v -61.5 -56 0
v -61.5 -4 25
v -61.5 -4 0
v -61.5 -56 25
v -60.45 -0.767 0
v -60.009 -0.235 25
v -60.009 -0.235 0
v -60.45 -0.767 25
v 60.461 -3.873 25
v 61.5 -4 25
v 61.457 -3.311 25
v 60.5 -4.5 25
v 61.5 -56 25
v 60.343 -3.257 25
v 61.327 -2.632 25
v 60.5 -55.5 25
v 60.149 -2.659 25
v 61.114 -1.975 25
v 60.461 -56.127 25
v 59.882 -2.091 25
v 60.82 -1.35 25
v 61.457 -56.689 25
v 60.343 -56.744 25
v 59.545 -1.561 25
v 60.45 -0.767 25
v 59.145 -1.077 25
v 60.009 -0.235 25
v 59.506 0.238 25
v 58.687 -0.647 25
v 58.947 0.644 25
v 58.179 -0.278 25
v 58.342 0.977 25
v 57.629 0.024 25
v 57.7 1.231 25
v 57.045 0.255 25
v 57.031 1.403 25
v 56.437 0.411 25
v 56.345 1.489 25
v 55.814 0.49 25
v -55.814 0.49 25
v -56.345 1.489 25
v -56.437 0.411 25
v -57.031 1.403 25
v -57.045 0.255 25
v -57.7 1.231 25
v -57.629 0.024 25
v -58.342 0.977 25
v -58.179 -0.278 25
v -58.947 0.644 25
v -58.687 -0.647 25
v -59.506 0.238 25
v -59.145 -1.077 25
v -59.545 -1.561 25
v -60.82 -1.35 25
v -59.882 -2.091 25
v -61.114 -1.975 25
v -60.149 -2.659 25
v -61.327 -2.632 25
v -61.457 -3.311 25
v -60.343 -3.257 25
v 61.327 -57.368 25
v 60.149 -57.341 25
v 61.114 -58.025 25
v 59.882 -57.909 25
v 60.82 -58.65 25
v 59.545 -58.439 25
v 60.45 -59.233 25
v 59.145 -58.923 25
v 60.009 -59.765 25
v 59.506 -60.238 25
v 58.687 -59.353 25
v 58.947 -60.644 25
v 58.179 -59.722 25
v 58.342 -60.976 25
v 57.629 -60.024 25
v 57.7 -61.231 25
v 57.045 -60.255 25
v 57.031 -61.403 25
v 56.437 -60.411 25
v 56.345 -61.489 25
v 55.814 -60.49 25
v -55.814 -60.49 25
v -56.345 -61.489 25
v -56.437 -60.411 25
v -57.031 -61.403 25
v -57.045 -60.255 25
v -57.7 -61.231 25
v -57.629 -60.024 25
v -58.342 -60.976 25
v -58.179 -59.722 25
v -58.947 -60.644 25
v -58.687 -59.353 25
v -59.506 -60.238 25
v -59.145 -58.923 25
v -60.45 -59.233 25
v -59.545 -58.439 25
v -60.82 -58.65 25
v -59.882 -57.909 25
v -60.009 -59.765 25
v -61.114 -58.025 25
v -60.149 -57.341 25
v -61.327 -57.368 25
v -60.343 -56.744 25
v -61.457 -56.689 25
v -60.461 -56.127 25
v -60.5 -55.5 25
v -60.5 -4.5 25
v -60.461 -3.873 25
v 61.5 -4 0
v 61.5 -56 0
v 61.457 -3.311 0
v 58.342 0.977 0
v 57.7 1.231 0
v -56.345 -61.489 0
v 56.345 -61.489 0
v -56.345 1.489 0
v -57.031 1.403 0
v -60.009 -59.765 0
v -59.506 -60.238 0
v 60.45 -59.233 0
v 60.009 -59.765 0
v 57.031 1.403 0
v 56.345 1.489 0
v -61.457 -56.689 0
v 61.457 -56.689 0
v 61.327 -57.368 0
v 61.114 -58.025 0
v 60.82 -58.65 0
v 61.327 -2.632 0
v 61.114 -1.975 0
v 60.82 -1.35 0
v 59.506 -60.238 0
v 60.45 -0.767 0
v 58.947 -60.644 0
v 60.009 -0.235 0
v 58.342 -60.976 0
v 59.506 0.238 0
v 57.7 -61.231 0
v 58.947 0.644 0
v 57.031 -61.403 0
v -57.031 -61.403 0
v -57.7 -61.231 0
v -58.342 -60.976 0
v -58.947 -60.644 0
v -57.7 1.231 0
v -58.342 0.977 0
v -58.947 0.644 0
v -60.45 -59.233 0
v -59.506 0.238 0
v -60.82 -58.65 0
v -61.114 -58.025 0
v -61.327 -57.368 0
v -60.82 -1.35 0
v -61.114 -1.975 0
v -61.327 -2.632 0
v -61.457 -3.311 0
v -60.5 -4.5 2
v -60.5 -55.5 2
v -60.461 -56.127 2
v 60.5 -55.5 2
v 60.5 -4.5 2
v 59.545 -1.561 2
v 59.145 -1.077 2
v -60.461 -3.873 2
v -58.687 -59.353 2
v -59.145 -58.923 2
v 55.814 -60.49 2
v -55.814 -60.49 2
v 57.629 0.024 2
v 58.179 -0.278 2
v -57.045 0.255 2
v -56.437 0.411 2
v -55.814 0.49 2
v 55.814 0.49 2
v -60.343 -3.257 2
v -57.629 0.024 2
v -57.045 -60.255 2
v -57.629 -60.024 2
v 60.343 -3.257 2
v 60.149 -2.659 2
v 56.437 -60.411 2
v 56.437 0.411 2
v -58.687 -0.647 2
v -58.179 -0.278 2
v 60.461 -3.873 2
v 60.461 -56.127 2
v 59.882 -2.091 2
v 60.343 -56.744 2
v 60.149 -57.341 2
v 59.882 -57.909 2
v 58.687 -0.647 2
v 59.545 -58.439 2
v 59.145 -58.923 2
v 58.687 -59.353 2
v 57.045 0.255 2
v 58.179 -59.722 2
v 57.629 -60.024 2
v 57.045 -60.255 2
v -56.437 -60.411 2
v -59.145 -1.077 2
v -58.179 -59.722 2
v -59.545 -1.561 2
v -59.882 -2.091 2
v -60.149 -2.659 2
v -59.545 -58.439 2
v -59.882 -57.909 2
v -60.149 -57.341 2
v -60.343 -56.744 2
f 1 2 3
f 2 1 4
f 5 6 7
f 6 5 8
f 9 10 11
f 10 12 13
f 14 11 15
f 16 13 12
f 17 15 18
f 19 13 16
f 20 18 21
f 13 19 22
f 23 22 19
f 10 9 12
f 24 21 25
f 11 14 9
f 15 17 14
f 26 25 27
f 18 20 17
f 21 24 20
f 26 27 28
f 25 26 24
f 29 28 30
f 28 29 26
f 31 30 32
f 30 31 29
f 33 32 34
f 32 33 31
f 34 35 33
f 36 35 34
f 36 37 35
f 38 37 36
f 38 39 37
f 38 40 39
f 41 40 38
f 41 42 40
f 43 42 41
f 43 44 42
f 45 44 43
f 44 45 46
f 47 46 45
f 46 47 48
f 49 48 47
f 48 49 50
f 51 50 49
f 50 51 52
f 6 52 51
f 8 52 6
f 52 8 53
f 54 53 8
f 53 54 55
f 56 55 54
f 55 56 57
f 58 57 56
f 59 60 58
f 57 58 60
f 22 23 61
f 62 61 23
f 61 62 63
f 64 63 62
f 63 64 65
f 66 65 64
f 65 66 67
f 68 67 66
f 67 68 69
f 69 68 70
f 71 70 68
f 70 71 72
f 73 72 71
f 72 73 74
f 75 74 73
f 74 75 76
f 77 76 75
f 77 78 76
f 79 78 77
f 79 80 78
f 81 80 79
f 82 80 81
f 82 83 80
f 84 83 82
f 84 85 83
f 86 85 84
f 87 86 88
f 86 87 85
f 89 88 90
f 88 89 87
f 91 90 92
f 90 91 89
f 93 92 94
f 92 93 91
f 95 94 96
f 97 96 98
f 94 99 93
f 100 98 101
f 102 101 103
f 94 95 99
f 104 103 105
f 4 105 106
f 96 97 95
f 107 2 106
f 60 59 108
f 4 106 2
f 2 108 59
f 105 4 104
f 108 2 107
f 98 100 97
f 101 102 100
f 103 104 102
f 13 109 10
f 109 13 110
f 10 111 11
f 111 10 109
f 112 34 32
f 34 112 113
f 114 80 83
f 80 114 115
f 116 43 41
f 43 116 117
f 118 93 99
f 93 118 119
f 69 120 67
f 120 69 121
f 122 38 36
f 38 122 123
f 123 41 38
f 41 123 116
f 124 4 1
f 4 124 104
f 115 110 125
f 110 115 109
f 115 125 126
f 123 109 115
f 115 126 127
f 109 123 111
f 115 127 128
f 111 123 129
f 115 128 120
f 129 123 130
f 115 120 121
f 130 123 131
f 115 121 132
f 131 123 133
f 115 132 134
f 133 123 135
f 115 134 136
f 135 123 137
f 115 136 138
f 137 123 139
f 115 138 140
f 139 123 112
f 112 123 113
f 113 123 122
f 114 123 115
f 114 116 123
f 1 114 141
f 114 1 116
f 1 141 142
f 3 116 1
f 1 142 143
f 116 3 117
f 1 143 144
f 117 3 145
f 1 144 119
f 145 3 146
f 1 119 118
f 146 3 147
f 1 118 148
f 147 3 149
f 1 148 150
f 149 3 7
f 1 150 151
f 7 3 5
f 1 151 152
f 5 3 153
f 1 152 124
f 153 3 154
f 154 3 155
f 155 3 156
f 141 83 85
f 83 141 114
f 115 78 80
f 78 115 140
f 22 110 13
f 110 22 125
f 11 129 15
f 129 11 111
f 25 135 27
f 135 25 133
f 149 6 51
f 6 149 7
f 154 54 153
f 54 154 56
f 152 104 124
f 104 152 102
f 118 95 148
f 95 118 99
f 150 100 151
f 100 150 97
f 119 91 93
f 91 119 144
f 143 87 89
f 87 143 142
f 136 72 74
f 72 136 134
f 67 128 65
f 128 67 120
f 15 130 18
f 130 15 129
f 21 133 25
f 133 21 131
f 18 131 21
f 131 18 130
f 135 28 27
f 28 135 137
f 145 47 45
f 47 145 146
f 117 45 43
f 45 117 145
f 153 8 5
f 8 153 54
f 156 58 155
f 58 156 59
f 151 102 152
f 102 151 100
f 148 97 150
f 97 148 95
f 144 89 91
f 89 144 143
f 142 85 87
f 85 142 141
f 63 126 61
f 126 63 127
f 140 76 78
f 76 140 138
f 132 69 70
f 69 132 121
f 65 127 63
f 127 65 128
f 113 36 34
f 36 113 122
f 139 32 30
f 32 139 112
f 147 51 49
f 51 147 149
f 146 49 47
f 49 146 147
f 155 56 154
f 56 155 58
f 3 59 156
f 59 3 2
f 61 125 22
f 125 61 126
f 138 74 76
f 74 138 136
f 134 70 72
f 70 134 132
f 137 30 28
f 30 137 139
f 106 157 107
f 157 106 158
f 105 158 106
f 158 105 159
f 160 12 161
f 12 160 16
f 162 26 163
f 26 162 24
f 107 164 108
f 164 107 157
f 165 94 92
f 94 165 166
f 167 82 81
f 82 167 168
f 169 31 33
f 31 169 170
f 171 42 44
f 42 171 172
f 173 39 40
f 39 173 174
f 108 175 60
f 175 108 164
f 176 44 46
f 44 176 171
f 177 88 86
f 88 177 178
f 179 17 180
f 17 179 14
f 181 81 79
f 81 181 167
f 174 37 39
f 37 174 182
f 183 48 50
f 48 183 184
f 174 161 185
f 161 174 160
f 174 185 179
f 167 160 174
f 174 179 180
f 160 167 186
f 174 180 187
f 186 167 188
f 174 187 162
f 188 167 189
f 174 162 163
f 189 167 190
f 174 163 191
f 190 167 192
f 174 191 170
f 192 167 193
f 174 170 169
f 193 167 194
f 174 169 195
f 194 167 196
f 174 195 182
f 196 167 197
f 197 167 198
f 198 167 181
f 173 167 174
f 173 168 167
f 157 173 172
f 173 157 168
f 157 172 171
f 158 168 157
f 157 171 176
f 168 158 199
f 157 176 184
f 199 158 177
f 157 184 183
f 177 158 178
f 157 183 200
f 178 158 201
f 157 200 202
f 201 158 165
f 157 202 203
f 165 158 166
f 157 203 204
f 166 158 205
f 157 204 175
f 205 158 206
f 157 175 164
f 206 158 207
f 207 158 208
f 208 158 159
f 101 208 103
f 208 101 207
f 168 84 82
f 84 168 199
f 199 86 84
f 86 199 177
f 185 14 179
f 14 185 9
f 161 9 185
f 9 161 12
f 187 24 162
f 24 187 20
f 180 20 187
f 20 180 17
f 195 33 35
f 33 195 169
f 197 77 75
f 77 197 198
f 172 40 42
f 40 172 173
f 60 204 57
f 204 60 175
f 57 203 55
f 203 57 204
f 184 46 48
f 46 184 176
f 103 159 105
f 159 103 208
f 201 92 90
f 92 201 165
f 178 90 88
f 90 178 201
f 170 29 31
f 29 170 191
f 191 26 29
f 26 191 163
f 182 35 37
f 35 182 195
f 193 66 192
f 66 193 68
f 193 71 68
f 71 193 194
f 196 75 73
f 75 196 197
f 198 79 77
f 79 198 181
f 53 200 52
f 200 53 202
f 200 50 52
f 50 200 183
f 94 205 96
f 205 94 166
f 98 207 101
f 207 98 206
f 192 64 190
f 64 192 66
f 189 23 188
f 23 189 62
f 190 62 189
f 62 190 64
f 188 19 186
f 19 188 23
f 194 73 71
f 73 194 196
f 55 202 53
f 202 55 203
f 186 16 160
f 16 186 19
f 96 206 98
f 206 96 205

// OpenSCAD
$fn = 50;


difference() {
	union() {
		translate(v = [0, -30.0000000000, 0]) {
			hull() {
				translate(v = [-56.0000000000, 26.0000000000, 0]) {
					cylinder(h = 25, r = 5.5000000000);
				}
				translate(v = [56.0000000000, 26.0000000000, 0]) {
					cylinder(h = 25, r = 5.5000000000);
				}
				translate(v = [-56.0000000000, -26.0000000000, 0]) {
					cylinder(h = 25, r = 5.5000000000);
				}
				translate(v = [56.0000000000, -26.0000000000, 0]) {
					cylinder(h = 25, r = 5.5000000000);
				}
			}
		}
	}
	union() {
		translate(v = [0, -30.0000000000, 2]) {
			hull() {
				translate(v = [-55.5000000000, 25.5000000000, 0]) {
					cylinder(h = 50, r = 5);
				}
				translate(v = [55.5000000000, 25.5000000000, 0]) {
					cylinder(h = 50, r = 5);
				}
				translate(v = [-55.5000000000, -25.5000000000, 0]) {
					cylinder(h = 50, r = 5);
				}
				translate(v = [55.5000000000, -25.5000000000, 0]) {
					cylinder(h = 50, r = 5);
				}
			}
		}
	}
}
